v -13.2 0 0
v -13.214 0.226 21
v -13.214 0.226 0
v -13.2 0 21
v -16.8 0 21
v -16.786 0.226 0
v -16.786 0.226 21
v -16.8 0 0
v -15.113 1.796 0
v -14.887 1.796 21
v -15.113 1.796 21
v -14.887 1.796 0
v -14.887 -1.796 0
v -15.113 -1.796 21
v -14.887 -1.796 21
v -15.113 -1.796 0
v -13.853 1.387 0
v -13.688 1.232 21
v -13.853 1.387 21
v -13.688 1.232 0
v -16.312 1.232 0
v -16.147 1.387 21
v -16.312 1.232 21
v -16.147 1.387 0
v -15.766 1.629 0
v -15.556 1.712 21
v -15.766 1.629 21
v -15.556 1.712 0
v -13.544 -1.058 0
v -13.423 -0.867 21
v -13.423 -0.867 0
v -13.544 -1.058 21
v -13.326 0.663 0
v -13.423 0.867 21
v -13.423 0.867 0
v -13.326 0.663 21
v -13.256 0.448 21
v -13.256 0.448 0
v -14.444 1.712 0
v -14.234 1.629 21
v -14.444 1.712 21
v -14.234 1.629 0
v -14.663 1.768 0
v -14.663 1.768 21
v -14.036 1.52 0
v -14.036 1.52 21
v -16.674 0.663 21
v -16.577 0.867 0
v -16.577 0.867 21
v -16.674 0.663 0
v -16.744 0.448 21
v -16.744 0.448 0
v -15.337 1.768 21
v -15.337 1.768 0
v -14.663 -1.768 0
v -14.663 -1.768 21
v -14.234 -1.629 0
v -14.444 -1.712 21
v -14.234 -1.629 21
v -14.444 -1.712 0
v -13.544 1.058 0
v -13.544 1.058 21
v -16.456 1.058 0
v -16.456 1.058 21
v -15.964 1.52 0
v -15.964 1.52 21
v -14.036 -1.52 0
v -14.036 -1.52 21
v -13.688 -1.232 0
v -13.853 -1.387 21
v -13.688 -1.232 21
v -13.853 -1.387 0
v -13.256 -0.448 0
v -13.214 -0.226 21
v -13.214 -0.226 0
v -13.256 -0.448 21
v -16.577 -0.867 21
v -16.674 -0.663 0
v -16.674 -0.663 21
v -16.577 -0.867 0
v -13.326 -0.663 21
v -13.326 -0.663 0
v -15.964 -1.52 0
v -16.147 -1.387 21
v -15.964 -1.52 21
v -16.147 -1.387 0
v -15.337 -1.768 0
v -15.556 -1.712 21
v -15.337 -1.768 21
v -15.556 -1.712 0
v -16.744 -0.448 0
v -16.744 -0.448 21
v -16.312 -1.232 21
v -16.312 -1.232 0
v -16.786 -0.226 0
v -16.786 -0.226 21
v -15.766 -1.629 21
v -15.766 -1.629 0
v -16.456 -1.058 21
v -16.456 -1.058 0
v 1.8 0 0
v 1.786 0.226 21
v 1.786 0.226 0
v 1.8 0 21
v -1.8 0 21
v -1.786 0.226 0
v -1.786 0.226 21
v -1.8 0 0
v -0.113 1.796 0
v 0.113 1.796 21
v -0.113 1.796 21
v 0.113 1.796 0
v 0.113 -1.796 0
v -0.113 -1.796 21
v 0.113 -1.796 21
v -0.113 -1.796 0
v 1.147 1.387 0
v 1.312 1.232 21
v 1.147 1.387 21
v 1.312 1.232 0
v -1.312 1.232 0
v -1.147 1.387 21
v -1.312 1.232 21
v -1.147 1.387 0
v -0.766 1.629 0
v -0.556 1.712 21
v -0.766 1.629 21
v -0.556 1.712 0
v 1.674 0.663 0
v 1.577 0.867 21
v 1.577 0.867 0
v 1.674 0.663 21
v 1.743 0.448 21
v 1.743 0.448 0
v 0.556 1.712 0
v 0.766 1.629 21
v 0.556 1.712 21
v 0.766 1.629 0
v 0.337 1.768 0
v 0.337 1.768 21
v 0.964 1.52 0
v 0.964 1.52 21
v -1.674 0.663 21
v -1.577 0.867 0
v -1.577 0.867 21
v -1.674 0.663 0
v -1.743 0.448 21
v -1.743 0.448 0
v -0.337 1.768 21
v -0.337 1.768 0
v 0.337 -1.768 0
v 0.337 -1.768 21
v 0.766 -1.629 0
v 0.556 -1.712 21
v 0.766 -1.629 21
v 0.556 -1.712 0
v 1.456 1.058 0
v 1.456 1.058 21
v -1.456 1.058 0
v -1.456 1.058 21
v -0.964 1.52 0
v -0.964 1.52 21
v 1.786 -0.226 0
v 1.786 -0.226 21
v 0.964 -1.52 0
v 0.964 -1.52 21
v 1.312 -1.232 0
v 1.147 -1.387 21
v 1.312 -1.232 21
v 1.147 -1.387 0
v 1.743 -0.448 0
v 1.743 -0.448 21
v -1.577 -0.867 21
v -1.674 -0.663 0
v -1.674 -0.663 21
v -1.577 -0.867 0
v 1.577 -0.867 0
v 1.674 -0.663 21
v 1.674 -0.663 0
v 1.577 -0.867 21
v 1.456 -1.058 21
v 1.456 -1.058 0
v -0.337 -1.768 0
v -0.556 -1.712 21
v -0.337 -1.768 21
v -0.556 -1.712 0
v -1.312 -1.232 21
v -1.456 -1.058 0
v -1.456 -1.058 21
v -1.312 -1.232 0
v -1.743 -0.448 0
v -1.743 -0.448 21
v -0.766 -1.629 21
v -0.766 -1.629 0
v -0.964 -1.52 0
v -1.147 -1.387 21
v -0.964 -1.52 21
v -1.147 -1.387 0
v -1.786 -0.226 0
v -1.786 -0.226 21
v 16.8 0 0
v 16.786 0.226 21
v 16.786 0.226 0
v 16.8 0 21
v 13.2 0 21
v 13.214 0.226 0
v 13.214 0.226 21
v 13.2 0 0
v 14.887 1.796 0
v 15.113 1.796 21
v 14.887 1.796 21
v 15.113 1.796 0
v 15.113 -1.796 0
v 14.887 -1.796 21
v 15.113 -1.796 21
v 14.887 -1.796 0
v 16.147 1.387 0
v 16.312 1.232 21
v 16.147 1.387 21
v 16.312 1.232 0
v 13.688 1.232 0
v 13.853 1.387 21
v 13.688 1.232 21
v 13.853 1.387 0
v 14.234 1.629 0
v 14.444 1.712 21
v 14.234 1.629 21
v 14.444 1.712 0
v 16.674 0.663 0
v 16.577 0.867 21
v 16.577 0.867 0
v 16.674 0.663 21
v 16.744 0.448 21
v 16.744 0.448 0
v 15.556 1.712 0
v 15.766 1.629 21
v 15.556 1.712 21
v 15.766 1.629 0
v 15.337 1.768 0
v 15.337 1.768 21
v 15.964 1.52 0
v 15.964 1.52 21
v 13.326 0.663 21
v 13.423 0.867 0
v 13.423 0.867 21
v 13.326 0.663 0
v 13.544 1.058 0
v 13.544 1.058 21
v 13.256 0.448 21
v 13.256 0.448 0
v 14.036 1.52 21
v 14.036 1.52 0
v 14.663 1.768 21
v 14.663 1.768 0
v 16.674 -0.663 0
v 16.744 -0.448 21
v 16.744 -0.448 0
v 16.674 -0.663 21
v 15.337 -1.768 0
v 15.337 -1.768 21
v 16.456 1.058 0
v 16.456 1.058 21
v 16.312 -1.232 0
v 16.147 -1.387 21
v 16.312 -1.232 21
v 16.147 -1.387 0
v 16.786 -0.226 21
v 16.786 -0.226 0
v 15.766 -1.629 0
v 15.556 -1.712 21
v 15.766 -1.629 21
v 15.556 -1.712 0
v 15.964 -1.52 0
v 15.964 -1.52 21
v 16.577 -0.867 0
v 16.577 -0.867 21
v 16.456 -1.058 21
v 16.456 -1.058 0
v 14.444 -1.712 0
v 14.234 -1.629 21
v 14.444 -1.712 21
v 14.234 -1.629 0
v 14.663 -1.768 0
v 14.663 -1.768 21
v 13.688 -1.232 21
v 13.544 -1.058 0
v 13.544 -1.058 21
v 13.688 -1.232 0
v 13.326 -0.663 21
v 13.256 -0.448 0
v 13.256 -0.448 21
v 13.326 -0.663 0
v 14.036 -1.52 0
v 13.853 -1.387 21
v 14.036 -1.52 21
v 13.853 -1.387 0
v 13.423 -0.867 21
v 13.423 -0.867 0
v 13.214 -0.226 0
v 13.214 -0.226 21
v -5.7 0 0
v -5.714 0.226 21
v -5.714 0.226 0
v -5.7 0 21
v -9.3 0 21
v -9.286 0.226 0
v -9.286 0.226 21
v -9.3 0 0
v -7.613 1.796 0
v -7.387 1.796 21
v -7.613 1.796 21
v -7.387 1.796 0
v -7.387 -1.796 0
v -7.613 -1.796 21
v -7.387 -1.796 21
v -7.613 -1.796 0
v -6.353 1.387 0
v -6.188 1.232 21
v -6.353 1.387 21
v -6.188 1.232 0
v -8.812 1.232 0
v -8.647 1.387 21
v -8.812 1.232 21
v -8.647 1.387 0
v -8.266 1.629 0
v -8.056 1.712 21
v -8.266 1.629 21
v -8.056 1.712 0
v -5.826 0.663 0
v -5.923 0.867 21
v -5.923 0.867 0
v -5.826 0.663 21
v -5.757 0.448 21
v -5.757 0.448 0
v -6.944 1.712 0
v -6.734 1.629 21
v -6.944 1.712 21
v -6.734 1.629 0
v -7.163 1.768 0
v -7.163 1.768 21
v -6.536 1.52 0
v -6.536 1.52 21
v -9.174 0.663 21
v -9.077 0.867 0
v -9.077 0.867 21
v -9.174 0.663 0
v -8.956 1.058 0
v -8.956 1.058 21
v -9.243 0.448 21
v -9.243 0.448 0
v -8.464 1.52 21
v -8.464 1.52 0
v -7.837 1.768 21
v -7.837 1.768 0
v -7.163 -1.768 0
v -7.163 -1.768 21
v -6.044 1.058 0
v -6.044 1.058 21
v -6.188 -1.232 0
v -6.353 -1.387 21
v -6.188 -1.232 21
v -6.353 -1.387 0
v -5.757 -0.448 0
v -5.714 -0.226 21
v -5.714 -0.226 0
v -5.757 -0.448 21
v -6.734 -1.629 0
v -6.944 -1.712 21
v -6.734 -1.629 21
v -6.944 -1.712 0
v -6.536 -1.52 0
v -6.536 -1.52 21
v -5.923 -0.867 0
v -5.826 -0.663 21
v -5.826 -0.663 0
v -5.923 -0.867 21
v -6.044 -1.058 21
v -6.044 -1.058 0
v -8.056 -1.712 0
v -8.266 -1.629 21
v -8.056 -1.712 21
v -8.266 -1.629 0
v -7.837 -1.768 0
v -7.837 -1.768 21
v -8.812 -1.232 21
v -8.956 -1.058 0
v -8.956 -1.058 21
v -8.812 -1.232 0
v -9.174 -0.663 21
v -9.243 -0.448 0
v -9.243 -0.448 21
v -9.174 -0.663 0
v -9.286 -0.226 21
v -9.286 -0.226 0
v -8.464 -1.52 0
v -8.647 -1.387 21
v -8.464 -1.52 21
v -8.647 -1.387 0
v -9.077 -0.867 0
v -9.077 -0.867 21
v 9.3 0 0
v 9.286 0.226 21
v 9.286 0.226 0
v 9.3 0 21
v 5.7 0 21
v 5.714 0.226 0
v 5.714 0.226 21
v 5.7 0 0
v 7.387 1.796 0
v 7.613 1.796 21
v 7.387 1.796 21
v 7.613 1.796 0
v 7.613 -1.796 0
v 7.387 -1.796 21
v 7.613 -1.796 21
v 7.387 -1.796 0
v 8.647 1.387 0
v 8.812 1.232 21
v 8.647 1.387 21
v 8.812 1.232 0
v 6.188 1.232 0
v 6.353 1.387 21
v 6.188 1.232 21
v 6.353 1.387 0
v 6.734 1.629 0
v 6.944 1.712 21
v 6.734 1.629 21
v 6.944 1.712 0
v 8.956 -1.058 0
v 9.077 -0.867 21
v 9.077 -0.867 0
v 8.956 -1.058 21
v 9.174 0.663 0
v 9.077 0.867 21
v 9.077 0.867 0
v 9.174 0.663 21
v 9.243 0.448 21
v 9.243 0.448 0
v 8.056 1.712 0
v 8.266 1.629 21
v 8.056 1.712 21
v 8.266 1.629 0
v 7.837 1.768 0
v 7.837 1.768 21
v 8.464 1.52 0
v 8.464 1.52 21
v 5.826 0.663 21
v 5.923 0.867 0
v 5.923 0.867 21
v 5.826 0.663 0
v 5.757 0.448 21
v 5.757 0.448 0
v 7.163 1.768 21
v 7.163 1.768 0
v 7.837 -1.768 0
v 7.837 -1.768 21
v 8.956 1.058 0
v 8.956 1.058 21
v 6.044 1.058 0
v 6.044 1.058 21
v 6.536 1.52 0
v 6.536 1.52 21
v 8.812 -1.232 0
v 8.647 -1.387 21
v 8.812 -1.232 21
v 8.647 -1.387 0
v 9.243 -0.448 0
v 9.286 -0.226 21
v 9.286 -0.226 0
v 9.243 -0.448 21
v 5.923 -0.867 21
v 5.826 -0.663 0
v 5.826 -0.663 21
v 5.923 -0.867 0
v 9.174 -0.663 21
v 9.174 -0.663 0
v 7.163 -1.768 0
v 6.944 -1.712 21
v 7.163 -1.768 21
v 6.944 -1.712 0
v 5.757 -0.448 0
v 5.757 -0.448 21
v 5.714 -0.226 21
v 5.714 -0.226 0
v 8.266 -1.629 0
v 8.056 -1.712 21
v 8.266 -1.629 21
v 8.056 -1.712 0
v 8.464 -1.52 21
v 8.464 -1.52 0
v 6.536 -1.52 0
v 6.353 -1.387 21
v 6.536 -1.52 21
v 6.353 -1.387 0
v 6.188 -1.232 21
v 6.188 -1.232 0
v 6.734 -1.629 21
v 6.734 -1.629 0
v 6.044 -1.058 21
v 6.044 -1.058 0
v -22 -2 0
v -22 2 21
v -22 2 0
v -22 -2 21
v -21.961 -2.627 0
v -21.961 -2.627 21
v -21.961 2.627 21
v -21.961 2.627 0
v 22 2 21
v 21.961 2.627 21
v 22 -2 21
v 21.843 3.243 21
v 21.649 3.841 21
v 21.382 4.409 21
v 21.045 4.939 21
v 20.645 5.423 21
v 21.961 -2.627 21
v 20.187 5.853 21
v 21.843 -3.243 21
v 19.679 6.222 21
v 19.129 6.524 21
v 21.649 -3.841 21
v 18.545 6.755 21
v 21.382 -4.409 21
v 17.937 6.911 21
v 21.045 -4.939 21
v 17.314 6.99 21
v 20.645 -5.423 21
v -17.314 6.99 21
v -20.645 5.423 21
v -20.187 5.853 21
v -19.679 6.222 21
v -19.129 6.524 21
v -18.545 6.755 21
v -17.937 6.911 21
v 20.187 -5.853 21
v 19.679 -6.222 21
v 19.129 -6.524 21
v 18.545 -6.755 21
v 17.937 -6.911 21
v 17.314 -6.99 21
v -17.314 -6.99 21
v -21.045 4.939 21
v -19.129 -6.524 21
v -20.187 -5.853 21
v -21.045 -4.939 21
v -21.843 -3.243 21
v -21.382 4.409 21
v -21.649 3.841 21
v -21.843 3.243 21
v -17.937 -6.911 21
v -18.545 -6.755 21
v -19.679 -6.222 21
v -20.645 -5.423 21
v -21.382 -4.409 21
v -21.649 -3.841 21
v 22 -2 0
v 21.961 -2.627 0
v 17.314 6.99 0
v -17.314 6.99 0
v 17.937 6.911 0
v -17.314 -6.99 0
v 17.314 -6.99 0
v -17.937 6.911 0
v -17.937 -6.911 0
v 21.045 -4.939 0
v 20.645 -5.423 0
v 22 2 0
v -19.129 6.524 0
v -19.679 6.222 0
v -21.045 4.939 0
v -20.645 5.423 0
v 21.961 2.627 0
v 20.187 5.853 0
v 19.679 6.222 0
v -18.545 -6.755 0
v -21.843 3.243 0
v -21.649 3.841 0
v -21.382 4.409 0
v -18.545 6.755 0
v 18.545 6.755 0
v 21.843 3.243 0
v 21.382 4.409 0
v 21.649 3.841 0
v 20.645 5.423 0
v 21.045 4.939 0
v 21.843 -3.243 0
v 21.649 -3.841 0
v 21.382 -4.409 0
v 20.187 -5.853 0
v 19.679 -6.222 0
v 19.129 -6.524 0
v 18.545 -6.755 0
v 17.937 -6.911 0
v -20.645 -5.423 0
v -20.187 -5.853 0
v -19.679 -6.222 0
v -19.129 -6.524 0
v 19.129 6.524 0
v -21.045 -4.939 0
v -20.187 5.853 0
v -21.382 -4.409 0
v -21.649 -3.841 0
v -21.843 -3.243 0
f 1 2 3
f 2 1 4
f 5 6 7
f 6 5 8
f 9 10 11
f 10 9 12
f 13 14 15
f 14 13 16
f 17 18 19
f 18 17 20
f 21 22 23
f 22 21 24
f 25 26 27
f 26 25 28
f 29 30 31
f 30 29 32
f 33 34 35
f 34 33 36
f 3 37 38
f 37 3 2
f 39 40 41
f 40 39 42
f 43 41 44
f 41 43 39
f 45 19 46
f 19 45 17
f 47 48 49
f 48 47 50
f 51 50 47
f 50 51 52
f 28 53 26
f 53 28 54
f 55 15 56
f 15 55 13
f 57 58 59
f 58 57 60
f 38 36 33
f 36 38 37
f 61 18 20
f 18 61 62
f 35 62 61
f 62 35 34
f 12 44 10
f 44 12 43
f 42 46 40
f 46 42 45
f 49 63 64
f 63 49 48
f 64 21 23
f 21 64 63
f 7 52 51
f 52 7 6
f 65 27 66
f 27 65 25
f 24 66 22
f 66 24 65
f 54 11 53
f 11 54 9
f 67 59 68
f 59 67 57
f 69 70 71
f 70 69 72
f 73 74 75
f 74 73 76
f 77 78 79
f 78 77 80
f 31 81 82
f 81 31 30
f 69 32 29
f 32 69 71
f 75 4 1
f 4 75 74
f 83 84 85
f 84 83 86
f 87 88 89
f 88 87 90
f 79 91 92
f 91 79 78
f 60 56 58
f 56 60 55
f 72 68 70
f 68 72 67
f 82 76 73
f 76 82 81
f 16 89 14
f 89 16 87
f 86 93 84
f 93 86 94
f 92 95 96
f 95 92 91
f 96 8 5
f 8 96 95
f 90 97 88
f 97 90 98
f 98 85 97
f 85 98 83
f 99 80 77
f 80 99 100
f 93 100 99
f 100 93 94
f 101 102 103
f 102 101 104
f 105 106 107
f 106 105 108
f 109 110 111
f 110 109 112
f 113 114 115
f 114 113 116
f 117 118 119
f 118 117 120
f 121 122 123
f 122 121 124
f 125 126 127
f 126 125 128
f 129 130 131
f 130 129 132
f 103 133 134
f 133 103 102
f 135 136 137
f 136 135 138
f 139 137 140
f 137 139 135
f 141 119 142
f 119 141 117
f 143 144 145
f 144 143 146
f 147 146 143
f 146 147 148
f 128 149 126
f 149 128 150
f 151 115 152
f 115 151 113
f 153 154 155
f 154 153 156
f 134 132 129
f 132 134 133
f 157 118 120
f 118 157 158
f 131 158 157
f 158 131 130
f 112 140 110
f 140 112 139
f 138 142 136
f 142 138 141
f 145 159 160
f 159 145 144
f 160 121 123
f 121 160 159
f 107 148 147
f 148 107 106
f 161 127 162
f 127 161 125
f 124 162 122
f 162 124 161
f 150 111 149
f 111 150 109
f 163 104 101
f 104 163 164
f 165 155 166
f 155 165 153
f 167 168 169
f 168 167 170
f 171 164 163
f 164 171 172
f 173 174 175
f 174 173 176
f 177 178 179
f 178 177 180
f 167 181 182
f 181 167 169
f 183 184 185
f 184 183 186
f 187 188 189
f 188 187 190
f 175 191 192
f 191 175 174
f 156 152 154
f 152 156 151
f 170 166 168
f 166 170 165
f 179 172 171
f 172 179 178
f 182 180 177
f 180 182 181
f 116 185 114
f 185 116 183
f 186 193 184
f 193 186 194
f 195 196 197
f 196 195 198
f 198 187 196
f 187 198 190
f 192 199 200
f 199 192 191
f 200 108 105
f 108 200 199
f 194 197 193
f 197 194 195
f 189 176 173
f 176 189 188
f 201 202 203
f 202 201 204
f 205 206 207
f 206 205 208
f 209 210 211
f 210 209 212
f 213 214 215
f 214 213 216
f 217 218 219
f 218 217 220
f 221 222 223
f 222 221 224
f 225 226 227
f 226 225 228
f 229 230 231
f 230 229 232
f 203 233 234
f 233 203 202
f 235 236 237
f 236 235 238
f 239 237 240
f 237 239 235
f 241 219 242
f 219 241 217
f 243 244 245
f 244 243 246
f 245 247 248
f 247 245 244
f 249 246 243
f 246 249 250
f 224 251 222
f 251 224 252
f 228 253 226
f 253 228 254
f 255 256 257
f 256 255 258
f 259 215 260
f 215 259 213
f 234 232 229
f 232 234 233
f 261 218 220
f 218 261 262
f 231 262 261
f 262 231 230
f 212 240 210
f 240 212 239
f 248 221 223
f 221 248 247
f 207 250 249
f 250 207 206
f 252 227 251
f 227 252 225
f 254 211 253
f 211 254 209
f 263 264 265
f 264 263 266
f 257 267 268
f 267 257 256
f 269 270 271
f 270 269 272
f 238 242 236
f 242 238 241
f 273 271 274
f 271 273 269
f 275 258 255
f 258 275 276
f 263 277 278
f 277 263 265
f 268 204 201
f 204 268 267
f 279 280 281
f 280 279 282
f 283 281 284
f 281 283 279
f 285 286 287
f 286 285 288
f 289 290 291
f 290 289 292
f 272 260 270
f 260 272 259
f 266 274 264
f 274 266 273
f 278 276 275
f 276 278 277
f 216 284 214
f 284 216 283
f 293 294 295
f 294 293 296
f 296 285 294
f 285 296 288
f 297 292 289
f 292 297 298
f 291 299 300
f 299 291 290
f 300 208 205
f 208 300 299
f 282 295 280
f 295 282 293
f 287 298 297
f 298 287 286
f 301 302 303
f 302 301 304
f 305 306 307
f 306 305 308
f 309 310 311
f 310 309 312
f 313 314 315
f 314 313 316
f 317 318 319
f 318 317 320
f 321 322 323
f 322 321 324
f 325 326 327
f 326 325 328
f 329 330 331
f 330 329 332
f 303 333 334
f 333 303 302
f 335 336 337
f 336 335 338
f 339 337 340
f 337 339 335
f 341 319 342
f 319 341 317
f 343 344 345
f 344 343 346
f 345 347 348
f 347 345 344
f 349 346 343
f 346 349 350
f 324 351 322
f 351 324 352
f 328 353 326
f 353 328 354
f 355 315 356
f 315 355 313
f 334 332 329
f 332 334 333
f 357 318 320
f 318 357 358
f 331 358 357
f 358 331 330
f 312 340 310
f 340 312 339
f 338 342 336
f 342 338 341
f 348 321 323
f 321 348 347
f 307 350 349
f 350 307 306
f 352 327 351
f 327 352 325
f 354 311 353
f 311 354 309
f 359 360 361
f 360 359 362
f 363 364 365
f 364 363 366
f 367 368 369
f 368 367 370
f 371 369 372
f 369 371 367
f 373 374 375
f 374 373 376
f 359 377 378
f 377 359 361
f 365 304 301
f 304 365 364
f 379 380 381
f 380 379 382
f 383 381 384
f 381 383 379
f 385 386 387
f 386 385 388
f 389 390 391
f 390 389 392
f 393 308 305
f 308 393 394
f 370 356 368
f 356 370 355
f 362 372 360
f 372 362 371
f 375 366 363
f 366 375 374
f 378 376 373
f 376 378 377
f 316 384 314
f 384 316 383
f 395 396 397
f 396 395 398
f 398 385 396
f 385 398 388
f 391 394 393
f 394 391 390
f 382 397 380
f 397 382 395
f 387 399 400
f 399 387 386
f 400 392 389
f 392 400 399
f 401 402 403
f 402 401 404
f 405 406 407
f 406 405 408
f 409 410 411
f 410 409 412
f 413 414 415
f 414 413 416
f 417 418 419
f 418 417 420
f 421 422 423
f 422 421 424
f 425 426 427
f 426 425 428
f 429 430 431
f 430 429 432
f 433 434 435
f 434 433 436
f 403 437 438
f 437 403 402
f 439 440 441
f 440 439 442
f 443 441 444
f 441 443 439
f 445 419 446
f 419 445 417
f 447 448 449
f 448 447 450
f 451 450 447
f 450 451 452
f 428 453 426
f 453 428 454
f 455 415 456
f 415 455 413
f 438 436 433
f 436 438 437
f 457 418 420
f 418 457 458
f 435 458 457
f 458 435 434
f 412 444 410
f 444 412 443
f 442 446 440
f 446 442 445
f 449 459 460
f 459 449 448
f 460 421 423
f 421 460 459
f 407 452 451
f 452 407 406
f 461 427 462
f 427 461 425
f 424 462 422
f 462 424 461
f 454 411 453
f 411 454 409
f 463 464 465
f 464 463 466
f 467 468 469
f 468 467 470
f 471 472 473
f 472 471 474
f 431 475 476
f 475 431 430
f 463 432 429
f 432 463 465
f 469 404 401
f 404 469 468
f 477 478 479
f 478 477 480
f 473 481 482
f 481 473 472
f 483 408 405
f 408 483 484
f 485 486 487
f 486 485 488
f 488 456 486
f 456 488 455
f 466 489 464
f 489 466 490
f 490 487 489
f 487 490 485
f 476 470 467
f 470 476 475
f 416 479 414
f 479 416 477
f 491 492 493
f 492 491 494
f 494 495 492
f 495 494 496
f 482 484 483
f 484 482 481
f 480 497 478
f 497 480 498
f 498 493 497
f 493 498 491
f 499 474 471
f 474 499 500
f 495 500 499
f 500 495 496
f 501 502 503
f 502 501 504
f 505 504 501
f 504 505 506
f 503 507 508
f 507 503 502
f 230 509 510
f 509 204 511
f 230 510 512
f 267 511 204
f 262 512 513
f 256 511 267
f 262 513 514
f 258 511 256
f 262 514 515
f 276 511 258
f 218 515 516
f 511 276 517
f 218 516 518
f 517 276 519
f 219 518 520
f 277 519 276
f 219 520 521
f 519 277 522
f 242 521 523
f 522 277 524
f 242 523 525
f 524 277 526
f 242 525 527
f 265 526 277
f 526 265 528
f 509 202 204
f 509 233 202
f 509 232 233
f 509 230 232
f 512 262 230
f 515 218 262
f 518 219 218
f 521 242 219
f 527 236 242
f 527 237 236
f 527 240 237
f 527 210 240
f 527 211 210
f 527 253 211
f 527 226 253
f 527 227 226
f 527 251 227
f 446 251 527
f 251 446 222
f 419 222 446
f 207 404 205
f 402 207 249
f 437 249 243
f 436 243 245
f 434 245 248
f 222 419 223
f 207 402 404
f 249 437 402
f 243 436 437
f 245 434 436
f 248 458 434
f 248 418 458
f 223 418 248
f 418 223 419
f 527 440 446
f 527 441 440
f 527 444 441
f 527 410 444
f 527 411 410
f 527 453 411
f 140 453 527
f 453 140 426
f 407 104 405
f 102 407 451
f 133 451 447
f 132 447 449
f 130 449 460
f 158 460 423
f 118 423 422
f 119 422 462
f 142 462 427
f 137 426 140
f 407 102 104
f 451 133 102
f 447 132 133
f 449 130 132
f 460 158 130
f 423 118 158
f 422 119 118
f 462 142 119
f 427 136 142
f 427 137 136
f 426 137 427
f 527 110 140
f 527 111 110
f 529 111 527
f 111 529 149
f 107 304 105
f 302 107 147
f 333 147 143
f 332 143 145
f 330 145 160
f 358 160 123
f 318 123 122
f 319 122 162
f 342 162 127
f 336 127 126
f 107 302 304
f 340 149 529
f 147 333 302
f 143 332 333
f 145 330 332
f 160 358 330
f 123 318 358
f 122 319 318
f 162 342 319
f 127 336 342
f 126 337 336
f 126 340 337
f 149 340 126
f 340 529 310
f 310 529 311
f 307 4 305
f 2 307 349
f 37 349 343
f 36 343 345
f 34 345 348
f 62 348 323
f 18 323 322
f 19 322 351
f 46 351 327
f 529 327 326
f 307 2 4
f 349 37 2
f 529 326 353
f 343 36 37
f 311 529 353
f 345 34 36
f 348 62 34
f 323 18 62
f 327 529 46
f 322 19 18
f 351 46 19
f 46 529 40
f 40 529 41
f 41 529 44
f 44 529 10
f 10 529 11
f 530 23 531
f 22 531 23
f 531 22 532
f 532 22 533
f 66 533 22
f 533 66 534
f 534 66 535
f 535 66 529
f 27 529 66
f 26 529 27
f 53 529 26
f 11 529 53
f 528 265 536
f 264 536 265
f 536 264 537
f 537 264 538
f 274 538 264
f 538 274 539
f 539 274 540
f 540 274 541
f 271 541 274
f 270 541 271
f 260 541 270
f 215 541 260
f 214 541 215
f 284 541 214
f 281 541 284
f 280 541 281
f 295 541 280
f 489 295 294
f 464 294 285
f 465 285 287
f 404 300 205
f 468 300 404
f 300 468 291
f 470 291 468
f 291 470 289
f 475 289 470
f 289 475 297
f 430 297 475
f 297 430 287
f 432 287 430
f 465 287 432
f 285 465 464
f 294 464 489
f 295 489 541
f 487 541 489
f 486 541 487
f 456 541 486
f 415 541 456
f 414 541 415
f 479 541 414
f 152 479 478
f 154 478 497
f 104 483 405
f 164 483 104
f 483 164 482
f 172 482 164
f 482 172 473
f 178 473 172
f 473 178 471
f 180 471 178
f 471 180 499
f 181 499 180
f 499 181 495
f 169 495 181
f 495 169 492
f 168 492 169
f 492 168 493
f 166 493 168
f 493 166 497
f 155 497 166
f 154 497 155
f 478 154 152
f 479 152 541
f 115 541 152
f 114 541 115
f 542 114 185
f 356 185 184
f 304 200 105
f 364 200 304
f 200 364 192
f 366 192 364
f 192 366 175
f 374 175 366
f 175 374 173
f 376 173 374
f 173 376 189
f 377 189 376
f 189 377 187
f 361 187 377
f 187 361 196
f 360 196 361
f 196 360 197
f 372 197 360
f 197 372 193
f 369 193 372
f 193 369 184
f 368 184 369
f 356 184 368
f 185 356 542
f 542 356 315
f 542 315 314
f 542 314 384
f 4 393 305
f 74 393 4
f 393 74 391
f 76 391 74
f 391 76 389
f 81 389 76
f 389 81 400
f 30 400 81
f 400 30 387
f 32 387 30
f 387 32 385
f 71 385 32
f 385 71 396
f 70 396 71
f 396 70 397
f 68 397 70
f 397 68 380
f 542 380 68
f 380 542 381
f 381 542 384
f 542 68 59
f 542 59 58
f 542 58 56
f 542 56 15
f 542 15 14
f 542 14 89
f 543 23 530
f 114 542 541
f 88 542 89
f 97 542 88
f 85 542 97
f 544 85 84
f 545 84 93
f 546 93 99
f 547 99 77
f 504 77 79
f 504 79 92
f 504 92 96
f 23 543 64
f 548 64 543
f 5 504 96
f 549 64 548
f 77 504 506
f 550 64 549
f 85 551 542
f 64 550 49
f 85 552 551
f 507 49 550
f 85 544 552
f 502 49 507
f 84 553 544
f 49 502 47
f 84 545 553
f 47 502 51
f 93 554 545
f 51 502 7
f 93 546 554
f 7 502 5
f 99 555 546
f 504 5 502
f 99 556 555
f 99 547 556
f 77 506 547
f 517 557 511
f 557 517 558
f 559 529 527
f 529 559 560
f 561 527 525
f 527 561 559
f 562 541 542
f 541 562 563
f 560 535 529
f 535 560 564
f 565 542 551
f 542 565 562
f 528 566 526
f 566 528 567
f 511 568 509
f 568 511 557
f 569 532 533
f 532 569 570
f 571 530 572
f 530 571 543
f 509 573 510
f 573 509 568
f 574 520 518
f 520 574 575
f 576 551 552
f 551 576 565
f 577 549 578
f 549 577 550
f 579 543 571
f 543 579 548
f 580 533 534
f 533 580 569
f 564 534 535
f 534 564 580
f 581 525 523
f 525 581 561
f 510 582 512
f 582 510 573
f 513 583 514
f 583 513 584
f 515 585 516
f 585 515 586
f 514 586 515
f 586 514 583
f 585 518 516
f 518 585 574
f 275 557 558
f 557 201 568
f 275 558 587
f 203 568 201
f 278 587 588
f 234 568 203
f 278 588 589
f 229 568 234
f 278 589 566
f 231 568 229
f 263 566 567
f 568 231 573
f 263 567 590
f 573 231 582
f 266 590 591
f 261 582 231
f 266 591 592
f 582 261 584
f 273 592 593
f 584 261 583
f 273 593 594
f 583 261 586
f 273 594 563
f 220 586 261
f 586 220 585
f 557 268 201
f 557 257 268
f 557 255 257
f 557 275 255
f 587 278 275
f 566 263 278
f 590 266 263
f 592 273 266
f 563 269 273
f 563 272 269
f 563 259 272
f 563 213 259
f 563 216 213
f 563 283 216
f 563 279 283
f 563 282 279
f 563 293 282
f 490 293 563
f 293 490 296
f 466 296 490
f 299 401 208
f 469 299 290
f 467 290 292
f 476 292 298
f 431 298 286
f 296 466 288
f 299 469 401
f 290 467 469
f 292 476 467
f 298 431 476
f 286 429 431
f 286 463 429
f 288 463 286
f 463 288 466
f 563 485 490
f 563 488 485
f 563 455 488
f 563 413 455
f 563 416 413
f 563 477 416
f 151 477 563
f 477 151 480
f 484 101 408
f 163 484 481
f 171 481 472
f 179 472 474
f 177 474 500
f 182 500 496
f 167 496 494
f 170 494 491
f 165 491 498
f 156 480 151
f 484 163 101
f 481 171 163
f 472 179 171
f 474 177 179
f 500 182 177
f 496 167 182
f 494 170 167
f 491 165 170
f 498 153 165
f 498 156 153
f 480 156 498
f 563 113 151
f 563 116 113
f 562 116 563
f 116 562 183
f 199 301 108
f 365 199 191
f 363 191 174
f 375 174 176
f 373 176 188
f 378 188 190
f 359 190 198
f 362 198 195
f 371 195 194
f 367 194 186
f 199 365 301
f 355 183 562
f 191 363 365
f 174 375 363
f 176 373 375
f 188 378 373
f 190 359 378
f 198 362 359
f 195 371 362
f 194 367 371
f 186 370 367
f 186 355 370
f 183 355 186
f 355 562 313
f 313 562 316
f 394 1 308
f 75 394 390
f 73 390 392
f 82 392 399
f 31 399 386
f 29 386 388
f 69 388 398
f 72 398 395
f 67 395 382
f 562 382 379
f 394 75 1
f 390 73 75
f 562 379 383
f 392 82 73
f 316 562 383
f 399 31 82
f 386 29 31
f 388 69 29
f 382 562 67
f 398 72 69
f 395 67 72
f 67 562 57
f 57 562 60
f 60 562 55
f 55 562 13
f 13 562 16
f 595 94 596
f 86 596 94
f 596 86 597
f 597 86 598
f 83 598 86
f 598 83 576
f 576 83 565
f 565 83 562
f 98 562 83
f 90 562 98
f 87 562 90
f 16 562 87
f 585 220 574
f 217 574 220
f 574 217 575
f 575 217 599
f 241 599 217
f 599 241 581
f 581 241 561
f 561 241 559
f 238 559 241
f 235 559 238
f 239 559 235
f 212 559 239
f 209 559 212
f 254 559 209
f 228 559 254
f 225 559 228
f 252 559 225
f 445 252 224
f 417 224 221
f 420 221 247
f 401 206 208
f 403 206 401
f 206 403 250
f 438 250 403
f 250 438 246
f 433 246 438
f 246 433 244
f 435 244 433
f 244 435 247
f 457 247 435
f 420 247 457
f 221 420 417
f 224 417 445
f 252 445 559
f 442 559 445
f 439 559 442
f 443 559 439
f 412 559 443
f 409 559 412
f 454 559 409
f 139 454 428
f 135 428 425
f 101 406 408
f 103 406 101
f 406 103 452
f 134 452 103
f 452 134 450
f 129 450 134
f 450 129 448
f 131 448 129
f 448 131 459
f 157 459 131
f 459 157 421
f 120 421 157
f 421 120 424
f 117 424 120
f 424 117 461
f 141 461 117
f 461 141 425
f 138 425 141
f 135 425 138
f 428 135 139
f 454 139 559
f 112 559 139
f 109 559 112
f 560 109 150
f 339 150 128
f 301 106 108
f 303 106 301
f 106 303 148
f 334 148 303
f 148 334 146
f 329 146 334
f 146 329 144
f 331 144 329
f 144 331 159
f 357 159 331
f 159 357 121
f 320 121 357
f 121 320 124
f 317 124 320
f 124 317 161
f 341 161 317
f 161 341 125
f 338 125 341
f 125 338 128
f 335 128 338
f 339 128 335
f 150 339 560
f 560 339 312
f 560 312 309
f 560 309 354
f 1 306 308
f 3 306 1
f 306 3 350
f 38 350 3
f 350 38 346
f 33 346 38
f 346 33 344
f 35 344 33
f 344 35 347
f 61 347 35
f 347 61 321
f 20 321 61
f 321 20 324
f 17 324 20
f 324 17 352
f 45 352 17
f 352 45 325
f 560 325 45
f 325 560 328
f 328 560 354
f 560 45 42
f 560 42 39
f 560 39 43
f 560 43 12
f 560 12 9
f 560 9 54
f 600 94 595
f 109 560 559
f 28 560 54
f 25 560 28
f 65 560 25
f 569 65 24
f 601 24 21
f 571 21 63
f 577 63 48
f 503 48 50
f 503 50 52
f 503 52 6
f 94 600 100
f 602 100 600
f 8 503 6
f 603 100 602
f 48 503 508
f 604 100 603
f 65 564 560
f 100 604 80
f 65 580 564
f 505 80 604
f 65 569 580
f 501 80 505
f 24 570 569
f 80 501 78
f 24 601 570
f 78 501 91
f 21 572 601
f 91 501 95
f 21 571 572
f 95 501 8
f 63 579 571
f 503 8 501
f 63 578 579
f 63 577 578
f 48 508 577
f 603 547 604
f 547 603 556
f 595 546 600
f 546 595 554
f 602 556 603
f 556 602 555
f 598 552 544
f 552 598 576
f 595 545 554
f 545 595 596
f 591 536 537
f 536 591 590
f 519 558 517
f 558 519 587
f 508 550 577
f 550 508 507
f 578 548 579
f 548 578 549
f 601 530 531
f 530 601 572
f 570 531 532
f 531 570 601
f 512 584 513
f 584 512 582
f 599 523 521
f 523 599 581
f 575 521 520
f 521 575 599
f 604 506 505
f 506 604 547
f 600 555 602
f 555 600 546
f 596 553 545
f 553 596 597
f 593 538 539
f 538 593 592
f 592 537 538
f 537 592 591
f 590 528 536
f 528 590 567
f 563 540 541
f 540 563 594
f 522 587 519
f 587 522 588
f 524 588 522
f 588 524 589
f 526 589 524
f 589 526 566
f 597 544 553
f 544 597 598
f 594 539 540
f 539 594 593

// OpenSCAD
$fn = 50;


difference() {
	union() {
		hull() {
			translate(v = [-17.0000000000, 2.0000000000, 0]) {
				cylinder(h = 21, r = 5);
			}
			translate(v = [17.0000000000, 2.0000000000, 0]) {
				cylinder(h = 21, r = 5);
			}
			translate(v = [-17.0000000000, -2.0000000000, 0]) {
				cylinder(h = 21, r = 5);
			}
			translate(v = [17.0000000000, -2.0000000000, 0]) {
				cylinder(h = 21, r = 5);
			}
		}
	}
	union() {
		translate(v = [-15.0000000000, 0.0000000000, 0]) {
			translate(v = [0, 0, -100]) {
				cylinder(h = 200, r = 1.8000000000);
			}
		}
		translate(v = [0, 0, -100]) {
			cylinder(h = 200, r = 1.8000000000);
		}
		translate(v = [15.0000000000, 0.0000000000, 0]) {
			translate(v = [0, 0, -100]) {
				cylinder(h = 200, r = 1.8000000000);
			}
		}
		translate(v = [-15.0000000000, 0.0000000000, 0]) {
			translate(v = [0, 0, -100]) {
				cylinder(h = 200, r = 1.8000000000);
			}
		}
		translate(v = [-7.5000000000, 0.0000000000, 0]) {
			translate(v = [0, 0, -100]) {
				cylinder(h = 200, r = 1.8000000000);
			}
		}
		translate(v = [0, 0, -100]) {
			cylinder(h = 200, r = 1.8000000000);
		}
		translate(v = [7.5000000000, 0.0000000000, 0]) {
			translate(v = [0, 0, -100]) {
				cylinder(h = 200, r = 1.8000000000);
			}
		}
		translate(v = [15.0000000000, 0.0000000000, 0]) {
			translate(v = [0, 0, -100]) {
				cylinder(h = 200, r = 1.8000000000);
			}
		}
	}
}
